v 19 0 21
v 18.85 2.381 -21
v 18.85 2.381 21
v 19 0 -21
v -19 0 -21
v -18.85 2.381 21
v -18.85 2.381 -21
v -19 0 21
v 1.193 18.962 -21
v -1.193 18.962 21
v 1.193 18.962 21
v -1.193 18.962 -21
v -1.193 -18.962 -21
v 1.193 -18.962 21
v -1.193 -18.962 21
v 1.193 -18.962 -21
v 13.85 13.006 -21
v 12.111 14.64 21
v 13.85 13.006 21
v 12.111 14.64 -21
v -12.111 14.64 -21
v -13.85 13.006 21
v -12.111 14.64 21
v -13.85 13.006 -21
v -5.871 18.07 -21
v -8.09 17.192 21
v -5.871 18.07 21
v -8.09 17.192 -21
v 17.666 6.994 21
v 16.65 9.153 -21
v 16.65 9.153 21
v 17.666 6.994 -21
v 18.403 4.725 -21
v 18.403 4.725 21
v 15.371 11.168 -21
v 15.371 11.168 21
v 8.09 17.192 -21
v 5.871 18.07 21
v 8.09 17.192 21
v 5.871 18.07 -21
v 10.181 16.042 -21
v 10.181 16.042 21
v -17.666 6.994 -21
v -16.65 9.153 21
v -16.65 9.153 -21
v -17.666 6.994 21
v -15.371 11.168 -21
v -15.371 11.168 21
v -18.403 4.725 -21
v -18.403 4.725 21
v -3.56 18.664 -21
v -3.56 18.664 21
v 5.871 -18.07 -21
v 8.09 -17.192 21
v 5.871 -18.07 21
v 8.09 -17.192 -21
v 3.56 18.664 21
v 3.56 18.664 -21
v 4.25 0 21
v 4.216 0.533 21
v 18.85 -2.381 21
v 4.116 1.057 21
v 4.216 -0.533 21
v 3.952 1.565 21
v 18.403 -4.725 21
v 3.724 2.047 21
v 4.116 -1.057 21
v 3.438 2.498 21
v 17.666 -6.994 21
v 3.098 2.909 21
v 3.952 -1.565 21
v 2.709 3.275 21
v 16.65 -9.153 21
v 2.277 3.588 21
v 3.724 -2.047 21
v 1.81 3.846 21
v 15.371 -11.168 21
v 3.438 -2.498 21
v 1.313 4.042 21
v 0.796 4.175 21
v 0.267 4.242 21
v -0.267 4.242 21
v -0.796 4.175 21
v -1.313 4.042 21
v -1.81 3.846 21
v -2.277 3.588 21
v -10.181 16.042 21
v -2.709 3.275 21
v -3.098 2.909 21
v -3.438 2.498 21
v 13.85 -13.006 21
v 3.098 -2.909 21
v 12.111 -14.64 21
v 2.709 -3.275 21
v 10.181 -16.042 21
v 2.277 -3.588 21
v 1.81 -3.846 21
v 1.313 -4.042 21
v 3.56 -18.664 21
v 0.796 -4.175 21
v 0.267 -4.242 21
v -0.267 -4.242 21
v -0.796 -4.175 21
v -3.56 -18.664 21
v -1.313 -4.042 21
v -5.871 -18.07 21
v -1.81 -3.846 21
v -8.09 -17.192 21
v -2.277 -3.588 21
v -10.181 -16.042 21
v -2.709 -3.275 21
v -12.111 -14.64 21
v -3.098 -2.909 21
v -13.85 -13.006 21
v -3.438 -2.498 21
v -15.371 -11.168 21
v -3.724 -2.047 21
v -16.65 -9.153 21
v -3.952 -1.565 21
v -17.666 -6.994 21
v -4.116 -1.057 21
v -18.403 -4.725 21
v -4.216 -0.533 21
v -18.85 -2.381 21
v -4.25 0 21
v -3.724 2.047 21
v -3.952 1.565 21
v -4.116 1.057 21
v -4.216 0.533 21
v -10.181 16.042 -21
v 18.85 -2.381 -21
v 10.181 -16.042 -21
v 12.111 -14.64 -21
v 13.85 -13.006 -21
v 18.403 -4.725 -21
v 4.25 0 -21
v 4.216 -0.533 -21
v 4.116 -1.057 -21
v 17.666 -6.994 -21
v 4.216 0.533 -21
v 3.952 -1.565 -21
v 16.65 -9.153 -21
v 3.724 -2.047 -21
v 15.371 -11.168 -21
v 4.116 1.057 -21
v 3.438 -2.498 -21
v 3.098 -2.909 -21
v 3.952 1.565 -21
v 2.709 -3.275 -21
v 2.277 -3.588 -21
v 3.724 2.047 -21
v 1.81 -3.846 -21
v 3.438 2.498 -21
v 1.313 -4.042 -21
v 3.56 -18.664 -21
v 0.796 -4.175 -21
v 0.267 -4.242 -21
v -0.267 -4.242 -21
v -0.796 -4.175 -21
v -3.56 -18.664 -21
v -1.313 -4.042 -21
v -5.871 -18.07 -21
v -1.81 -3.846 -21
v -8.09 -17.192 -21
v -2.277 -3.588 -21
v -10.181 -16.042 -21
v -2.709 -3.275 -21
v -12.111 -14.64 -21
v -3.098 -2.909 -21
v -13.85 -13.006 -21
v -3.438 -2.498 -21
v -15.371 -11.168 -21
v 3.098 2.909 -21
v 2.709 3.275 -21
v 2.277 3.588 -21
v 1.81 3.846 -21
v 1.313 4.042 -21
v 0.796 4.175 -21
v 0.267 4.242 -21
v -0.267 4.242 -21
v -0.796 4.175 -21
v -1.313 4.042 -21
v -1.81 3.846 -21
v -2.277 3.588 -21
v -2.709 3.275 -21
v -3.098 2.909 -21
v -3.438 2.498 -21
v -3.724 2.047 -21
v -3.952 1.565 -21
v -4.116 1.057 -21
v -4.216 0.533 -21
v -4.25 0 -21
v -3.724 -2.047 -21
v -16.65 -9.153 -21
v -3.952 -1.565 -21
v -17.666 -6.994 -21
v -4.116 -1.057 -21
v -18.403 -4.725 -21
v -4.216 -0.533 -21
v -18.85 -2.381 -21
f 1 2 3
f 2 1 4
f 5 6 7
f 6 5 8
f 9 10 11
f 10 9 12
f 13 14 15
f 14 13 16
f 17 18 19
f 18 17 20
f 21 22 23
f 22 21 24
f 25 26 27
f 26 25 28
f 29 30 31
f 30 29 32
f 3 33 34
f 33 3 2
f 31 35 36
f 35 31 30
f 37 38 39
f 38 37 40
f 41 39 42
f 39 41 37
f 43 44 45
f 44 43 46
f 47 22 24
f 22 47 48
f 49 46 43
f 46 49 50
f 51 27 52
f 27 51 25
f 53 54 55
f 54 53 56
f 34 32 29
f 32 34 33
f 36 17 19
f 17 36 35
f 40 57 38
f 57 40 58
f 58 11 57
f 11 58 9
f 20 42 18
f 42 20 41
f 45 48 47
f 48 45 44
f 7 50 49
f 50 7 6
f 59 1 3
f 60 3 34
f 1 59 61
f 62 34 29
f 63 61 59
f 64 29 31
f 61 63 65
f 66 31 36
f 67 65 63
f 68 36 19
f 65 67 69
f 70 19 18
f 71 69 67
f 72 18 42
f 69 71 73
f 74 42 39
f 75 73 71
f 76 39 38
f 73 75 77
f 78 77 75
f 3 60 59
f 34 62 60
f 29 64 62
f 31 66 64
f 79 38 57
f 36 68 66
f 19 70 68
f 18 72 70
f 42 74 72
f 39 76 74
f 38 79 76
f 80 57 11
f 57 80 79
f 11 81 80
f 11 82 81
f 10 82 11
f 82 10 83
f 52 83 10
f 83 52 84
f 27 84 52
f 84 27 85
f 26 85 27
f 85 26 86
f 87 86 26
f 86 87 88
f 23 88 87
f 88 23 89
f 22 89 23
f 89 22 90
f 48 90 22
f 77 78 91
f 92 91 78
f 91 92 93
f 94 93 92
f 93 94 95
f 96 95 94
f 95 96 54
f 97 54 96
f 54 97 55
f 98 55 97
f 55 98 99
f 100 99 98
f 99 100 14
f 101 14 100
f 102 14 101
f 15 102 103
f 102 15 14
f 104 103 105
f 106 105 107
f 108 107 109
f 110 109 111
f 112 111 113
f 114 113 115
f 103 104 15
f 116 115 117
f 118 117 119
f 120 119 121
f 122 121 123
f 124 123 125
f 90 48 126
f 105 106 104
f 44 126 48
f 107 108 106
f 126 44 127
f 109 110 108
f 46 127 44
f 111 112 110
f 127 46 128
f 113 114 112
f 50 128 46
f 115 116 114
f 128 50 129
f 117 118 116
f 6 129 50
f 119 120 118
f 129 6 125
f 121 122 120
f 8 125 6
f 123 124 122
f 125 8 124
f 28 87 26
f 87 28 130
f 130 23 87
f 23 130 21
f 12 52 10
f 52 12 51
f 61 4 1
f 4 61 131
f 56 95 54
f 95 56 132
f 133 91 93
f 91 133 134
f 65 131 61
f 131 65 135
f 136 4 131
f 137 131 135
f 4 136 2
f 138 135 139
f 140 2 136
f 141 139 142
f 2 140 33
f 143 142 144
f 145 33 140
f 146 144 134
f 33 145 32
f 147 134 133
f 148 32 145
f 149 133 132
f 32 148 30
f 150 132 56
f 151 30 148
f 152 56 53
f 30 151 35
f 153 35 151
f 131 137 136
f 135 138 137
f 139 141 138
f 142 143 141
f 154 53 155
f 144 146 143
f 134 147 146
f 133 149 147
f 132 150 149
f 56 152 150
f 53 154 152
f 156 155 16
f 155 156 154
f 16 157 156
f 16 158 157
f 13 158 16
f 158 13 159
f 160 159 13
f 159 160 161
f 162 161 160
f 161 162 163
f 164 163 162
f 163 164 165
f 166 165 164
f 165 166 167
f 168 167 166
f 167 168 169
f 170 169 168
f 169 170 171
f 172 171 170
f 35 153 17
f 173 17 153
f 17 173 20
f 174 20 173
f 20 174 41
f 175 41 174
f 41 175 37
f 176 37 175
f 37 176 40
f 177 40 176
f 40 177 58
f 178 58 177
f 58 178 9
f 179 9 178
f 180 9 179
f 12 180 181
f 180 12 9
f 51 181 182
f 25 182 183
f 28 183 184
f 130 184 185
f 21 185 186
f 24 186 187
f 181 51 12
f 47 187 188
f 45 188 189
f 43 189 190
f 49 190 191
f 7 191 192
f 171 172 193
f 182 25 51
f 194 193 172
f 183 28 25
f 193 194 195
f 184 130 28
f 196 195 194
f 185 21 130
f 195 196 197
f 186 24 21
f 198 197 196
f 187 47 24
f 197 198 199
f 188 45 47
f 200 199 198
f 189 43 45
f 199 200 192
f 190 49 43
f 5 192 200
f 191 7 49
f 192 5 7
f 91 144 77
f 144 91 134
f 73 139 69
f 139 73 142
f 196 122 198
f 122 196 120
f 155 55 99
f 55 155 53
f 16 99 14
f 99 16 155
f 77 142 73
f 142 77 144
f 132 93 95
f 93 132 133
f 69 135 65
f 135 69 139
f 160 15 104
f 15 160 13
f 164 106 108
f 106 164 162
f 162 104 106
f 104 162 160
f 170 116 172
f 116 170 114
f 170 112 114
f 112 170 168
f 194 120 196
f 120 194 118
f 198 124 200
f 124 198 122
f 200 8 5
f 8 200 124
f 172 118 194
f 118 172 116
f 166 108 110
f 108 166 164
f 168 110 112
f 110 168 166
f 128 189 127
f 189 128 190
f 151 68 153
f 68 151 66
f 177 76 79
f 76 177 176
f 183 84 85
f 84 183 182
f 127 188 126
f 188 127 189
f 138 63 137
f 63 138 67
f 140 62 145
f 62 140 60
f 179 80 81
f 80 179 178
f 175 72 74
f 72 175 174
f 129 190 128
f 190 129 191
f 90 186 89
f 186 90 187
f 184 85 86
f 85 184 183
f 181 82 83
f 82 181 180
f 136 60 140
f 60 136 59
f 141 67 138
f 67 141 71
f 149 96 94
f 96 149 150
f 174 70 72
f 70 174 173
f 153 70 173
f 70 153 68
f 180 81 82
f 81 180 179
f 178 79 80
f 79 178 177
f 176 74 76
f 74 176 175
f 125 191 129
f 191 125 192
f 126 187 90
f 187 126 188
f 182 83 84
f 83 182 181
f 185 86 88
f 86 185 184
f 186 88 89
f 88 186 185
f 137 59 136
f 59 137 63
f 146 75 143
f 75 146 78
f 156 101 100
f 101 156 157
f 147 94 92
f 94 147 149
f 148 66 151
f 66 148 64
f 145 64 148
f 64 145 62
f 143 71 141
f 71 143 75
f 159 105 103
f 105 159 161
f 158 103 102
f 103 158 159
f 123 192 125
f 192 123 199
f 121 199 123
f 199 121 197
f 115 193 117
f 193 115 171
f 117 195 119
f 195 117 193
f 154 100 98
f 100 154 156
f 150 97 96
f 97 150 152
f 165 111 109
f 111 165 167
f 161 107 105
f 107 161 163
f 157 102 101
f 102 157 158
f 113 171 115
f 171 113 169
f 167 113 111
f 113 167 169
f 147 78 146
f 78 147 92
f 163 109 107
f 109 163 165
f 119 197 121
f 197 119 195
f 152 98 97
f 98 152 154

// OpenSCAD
$fn = 50;


difference() {
	union() {
		translate(v = [0, 0, -21.0000000000]) {
			cylinder(h = 42, r = 19.0000000000);
		}
	}
	union() {
		translate(v = [0, 0, -100.0000000000]) {
			cylinder(h = 200, r = 4.2500000000);
		}
	}
}
